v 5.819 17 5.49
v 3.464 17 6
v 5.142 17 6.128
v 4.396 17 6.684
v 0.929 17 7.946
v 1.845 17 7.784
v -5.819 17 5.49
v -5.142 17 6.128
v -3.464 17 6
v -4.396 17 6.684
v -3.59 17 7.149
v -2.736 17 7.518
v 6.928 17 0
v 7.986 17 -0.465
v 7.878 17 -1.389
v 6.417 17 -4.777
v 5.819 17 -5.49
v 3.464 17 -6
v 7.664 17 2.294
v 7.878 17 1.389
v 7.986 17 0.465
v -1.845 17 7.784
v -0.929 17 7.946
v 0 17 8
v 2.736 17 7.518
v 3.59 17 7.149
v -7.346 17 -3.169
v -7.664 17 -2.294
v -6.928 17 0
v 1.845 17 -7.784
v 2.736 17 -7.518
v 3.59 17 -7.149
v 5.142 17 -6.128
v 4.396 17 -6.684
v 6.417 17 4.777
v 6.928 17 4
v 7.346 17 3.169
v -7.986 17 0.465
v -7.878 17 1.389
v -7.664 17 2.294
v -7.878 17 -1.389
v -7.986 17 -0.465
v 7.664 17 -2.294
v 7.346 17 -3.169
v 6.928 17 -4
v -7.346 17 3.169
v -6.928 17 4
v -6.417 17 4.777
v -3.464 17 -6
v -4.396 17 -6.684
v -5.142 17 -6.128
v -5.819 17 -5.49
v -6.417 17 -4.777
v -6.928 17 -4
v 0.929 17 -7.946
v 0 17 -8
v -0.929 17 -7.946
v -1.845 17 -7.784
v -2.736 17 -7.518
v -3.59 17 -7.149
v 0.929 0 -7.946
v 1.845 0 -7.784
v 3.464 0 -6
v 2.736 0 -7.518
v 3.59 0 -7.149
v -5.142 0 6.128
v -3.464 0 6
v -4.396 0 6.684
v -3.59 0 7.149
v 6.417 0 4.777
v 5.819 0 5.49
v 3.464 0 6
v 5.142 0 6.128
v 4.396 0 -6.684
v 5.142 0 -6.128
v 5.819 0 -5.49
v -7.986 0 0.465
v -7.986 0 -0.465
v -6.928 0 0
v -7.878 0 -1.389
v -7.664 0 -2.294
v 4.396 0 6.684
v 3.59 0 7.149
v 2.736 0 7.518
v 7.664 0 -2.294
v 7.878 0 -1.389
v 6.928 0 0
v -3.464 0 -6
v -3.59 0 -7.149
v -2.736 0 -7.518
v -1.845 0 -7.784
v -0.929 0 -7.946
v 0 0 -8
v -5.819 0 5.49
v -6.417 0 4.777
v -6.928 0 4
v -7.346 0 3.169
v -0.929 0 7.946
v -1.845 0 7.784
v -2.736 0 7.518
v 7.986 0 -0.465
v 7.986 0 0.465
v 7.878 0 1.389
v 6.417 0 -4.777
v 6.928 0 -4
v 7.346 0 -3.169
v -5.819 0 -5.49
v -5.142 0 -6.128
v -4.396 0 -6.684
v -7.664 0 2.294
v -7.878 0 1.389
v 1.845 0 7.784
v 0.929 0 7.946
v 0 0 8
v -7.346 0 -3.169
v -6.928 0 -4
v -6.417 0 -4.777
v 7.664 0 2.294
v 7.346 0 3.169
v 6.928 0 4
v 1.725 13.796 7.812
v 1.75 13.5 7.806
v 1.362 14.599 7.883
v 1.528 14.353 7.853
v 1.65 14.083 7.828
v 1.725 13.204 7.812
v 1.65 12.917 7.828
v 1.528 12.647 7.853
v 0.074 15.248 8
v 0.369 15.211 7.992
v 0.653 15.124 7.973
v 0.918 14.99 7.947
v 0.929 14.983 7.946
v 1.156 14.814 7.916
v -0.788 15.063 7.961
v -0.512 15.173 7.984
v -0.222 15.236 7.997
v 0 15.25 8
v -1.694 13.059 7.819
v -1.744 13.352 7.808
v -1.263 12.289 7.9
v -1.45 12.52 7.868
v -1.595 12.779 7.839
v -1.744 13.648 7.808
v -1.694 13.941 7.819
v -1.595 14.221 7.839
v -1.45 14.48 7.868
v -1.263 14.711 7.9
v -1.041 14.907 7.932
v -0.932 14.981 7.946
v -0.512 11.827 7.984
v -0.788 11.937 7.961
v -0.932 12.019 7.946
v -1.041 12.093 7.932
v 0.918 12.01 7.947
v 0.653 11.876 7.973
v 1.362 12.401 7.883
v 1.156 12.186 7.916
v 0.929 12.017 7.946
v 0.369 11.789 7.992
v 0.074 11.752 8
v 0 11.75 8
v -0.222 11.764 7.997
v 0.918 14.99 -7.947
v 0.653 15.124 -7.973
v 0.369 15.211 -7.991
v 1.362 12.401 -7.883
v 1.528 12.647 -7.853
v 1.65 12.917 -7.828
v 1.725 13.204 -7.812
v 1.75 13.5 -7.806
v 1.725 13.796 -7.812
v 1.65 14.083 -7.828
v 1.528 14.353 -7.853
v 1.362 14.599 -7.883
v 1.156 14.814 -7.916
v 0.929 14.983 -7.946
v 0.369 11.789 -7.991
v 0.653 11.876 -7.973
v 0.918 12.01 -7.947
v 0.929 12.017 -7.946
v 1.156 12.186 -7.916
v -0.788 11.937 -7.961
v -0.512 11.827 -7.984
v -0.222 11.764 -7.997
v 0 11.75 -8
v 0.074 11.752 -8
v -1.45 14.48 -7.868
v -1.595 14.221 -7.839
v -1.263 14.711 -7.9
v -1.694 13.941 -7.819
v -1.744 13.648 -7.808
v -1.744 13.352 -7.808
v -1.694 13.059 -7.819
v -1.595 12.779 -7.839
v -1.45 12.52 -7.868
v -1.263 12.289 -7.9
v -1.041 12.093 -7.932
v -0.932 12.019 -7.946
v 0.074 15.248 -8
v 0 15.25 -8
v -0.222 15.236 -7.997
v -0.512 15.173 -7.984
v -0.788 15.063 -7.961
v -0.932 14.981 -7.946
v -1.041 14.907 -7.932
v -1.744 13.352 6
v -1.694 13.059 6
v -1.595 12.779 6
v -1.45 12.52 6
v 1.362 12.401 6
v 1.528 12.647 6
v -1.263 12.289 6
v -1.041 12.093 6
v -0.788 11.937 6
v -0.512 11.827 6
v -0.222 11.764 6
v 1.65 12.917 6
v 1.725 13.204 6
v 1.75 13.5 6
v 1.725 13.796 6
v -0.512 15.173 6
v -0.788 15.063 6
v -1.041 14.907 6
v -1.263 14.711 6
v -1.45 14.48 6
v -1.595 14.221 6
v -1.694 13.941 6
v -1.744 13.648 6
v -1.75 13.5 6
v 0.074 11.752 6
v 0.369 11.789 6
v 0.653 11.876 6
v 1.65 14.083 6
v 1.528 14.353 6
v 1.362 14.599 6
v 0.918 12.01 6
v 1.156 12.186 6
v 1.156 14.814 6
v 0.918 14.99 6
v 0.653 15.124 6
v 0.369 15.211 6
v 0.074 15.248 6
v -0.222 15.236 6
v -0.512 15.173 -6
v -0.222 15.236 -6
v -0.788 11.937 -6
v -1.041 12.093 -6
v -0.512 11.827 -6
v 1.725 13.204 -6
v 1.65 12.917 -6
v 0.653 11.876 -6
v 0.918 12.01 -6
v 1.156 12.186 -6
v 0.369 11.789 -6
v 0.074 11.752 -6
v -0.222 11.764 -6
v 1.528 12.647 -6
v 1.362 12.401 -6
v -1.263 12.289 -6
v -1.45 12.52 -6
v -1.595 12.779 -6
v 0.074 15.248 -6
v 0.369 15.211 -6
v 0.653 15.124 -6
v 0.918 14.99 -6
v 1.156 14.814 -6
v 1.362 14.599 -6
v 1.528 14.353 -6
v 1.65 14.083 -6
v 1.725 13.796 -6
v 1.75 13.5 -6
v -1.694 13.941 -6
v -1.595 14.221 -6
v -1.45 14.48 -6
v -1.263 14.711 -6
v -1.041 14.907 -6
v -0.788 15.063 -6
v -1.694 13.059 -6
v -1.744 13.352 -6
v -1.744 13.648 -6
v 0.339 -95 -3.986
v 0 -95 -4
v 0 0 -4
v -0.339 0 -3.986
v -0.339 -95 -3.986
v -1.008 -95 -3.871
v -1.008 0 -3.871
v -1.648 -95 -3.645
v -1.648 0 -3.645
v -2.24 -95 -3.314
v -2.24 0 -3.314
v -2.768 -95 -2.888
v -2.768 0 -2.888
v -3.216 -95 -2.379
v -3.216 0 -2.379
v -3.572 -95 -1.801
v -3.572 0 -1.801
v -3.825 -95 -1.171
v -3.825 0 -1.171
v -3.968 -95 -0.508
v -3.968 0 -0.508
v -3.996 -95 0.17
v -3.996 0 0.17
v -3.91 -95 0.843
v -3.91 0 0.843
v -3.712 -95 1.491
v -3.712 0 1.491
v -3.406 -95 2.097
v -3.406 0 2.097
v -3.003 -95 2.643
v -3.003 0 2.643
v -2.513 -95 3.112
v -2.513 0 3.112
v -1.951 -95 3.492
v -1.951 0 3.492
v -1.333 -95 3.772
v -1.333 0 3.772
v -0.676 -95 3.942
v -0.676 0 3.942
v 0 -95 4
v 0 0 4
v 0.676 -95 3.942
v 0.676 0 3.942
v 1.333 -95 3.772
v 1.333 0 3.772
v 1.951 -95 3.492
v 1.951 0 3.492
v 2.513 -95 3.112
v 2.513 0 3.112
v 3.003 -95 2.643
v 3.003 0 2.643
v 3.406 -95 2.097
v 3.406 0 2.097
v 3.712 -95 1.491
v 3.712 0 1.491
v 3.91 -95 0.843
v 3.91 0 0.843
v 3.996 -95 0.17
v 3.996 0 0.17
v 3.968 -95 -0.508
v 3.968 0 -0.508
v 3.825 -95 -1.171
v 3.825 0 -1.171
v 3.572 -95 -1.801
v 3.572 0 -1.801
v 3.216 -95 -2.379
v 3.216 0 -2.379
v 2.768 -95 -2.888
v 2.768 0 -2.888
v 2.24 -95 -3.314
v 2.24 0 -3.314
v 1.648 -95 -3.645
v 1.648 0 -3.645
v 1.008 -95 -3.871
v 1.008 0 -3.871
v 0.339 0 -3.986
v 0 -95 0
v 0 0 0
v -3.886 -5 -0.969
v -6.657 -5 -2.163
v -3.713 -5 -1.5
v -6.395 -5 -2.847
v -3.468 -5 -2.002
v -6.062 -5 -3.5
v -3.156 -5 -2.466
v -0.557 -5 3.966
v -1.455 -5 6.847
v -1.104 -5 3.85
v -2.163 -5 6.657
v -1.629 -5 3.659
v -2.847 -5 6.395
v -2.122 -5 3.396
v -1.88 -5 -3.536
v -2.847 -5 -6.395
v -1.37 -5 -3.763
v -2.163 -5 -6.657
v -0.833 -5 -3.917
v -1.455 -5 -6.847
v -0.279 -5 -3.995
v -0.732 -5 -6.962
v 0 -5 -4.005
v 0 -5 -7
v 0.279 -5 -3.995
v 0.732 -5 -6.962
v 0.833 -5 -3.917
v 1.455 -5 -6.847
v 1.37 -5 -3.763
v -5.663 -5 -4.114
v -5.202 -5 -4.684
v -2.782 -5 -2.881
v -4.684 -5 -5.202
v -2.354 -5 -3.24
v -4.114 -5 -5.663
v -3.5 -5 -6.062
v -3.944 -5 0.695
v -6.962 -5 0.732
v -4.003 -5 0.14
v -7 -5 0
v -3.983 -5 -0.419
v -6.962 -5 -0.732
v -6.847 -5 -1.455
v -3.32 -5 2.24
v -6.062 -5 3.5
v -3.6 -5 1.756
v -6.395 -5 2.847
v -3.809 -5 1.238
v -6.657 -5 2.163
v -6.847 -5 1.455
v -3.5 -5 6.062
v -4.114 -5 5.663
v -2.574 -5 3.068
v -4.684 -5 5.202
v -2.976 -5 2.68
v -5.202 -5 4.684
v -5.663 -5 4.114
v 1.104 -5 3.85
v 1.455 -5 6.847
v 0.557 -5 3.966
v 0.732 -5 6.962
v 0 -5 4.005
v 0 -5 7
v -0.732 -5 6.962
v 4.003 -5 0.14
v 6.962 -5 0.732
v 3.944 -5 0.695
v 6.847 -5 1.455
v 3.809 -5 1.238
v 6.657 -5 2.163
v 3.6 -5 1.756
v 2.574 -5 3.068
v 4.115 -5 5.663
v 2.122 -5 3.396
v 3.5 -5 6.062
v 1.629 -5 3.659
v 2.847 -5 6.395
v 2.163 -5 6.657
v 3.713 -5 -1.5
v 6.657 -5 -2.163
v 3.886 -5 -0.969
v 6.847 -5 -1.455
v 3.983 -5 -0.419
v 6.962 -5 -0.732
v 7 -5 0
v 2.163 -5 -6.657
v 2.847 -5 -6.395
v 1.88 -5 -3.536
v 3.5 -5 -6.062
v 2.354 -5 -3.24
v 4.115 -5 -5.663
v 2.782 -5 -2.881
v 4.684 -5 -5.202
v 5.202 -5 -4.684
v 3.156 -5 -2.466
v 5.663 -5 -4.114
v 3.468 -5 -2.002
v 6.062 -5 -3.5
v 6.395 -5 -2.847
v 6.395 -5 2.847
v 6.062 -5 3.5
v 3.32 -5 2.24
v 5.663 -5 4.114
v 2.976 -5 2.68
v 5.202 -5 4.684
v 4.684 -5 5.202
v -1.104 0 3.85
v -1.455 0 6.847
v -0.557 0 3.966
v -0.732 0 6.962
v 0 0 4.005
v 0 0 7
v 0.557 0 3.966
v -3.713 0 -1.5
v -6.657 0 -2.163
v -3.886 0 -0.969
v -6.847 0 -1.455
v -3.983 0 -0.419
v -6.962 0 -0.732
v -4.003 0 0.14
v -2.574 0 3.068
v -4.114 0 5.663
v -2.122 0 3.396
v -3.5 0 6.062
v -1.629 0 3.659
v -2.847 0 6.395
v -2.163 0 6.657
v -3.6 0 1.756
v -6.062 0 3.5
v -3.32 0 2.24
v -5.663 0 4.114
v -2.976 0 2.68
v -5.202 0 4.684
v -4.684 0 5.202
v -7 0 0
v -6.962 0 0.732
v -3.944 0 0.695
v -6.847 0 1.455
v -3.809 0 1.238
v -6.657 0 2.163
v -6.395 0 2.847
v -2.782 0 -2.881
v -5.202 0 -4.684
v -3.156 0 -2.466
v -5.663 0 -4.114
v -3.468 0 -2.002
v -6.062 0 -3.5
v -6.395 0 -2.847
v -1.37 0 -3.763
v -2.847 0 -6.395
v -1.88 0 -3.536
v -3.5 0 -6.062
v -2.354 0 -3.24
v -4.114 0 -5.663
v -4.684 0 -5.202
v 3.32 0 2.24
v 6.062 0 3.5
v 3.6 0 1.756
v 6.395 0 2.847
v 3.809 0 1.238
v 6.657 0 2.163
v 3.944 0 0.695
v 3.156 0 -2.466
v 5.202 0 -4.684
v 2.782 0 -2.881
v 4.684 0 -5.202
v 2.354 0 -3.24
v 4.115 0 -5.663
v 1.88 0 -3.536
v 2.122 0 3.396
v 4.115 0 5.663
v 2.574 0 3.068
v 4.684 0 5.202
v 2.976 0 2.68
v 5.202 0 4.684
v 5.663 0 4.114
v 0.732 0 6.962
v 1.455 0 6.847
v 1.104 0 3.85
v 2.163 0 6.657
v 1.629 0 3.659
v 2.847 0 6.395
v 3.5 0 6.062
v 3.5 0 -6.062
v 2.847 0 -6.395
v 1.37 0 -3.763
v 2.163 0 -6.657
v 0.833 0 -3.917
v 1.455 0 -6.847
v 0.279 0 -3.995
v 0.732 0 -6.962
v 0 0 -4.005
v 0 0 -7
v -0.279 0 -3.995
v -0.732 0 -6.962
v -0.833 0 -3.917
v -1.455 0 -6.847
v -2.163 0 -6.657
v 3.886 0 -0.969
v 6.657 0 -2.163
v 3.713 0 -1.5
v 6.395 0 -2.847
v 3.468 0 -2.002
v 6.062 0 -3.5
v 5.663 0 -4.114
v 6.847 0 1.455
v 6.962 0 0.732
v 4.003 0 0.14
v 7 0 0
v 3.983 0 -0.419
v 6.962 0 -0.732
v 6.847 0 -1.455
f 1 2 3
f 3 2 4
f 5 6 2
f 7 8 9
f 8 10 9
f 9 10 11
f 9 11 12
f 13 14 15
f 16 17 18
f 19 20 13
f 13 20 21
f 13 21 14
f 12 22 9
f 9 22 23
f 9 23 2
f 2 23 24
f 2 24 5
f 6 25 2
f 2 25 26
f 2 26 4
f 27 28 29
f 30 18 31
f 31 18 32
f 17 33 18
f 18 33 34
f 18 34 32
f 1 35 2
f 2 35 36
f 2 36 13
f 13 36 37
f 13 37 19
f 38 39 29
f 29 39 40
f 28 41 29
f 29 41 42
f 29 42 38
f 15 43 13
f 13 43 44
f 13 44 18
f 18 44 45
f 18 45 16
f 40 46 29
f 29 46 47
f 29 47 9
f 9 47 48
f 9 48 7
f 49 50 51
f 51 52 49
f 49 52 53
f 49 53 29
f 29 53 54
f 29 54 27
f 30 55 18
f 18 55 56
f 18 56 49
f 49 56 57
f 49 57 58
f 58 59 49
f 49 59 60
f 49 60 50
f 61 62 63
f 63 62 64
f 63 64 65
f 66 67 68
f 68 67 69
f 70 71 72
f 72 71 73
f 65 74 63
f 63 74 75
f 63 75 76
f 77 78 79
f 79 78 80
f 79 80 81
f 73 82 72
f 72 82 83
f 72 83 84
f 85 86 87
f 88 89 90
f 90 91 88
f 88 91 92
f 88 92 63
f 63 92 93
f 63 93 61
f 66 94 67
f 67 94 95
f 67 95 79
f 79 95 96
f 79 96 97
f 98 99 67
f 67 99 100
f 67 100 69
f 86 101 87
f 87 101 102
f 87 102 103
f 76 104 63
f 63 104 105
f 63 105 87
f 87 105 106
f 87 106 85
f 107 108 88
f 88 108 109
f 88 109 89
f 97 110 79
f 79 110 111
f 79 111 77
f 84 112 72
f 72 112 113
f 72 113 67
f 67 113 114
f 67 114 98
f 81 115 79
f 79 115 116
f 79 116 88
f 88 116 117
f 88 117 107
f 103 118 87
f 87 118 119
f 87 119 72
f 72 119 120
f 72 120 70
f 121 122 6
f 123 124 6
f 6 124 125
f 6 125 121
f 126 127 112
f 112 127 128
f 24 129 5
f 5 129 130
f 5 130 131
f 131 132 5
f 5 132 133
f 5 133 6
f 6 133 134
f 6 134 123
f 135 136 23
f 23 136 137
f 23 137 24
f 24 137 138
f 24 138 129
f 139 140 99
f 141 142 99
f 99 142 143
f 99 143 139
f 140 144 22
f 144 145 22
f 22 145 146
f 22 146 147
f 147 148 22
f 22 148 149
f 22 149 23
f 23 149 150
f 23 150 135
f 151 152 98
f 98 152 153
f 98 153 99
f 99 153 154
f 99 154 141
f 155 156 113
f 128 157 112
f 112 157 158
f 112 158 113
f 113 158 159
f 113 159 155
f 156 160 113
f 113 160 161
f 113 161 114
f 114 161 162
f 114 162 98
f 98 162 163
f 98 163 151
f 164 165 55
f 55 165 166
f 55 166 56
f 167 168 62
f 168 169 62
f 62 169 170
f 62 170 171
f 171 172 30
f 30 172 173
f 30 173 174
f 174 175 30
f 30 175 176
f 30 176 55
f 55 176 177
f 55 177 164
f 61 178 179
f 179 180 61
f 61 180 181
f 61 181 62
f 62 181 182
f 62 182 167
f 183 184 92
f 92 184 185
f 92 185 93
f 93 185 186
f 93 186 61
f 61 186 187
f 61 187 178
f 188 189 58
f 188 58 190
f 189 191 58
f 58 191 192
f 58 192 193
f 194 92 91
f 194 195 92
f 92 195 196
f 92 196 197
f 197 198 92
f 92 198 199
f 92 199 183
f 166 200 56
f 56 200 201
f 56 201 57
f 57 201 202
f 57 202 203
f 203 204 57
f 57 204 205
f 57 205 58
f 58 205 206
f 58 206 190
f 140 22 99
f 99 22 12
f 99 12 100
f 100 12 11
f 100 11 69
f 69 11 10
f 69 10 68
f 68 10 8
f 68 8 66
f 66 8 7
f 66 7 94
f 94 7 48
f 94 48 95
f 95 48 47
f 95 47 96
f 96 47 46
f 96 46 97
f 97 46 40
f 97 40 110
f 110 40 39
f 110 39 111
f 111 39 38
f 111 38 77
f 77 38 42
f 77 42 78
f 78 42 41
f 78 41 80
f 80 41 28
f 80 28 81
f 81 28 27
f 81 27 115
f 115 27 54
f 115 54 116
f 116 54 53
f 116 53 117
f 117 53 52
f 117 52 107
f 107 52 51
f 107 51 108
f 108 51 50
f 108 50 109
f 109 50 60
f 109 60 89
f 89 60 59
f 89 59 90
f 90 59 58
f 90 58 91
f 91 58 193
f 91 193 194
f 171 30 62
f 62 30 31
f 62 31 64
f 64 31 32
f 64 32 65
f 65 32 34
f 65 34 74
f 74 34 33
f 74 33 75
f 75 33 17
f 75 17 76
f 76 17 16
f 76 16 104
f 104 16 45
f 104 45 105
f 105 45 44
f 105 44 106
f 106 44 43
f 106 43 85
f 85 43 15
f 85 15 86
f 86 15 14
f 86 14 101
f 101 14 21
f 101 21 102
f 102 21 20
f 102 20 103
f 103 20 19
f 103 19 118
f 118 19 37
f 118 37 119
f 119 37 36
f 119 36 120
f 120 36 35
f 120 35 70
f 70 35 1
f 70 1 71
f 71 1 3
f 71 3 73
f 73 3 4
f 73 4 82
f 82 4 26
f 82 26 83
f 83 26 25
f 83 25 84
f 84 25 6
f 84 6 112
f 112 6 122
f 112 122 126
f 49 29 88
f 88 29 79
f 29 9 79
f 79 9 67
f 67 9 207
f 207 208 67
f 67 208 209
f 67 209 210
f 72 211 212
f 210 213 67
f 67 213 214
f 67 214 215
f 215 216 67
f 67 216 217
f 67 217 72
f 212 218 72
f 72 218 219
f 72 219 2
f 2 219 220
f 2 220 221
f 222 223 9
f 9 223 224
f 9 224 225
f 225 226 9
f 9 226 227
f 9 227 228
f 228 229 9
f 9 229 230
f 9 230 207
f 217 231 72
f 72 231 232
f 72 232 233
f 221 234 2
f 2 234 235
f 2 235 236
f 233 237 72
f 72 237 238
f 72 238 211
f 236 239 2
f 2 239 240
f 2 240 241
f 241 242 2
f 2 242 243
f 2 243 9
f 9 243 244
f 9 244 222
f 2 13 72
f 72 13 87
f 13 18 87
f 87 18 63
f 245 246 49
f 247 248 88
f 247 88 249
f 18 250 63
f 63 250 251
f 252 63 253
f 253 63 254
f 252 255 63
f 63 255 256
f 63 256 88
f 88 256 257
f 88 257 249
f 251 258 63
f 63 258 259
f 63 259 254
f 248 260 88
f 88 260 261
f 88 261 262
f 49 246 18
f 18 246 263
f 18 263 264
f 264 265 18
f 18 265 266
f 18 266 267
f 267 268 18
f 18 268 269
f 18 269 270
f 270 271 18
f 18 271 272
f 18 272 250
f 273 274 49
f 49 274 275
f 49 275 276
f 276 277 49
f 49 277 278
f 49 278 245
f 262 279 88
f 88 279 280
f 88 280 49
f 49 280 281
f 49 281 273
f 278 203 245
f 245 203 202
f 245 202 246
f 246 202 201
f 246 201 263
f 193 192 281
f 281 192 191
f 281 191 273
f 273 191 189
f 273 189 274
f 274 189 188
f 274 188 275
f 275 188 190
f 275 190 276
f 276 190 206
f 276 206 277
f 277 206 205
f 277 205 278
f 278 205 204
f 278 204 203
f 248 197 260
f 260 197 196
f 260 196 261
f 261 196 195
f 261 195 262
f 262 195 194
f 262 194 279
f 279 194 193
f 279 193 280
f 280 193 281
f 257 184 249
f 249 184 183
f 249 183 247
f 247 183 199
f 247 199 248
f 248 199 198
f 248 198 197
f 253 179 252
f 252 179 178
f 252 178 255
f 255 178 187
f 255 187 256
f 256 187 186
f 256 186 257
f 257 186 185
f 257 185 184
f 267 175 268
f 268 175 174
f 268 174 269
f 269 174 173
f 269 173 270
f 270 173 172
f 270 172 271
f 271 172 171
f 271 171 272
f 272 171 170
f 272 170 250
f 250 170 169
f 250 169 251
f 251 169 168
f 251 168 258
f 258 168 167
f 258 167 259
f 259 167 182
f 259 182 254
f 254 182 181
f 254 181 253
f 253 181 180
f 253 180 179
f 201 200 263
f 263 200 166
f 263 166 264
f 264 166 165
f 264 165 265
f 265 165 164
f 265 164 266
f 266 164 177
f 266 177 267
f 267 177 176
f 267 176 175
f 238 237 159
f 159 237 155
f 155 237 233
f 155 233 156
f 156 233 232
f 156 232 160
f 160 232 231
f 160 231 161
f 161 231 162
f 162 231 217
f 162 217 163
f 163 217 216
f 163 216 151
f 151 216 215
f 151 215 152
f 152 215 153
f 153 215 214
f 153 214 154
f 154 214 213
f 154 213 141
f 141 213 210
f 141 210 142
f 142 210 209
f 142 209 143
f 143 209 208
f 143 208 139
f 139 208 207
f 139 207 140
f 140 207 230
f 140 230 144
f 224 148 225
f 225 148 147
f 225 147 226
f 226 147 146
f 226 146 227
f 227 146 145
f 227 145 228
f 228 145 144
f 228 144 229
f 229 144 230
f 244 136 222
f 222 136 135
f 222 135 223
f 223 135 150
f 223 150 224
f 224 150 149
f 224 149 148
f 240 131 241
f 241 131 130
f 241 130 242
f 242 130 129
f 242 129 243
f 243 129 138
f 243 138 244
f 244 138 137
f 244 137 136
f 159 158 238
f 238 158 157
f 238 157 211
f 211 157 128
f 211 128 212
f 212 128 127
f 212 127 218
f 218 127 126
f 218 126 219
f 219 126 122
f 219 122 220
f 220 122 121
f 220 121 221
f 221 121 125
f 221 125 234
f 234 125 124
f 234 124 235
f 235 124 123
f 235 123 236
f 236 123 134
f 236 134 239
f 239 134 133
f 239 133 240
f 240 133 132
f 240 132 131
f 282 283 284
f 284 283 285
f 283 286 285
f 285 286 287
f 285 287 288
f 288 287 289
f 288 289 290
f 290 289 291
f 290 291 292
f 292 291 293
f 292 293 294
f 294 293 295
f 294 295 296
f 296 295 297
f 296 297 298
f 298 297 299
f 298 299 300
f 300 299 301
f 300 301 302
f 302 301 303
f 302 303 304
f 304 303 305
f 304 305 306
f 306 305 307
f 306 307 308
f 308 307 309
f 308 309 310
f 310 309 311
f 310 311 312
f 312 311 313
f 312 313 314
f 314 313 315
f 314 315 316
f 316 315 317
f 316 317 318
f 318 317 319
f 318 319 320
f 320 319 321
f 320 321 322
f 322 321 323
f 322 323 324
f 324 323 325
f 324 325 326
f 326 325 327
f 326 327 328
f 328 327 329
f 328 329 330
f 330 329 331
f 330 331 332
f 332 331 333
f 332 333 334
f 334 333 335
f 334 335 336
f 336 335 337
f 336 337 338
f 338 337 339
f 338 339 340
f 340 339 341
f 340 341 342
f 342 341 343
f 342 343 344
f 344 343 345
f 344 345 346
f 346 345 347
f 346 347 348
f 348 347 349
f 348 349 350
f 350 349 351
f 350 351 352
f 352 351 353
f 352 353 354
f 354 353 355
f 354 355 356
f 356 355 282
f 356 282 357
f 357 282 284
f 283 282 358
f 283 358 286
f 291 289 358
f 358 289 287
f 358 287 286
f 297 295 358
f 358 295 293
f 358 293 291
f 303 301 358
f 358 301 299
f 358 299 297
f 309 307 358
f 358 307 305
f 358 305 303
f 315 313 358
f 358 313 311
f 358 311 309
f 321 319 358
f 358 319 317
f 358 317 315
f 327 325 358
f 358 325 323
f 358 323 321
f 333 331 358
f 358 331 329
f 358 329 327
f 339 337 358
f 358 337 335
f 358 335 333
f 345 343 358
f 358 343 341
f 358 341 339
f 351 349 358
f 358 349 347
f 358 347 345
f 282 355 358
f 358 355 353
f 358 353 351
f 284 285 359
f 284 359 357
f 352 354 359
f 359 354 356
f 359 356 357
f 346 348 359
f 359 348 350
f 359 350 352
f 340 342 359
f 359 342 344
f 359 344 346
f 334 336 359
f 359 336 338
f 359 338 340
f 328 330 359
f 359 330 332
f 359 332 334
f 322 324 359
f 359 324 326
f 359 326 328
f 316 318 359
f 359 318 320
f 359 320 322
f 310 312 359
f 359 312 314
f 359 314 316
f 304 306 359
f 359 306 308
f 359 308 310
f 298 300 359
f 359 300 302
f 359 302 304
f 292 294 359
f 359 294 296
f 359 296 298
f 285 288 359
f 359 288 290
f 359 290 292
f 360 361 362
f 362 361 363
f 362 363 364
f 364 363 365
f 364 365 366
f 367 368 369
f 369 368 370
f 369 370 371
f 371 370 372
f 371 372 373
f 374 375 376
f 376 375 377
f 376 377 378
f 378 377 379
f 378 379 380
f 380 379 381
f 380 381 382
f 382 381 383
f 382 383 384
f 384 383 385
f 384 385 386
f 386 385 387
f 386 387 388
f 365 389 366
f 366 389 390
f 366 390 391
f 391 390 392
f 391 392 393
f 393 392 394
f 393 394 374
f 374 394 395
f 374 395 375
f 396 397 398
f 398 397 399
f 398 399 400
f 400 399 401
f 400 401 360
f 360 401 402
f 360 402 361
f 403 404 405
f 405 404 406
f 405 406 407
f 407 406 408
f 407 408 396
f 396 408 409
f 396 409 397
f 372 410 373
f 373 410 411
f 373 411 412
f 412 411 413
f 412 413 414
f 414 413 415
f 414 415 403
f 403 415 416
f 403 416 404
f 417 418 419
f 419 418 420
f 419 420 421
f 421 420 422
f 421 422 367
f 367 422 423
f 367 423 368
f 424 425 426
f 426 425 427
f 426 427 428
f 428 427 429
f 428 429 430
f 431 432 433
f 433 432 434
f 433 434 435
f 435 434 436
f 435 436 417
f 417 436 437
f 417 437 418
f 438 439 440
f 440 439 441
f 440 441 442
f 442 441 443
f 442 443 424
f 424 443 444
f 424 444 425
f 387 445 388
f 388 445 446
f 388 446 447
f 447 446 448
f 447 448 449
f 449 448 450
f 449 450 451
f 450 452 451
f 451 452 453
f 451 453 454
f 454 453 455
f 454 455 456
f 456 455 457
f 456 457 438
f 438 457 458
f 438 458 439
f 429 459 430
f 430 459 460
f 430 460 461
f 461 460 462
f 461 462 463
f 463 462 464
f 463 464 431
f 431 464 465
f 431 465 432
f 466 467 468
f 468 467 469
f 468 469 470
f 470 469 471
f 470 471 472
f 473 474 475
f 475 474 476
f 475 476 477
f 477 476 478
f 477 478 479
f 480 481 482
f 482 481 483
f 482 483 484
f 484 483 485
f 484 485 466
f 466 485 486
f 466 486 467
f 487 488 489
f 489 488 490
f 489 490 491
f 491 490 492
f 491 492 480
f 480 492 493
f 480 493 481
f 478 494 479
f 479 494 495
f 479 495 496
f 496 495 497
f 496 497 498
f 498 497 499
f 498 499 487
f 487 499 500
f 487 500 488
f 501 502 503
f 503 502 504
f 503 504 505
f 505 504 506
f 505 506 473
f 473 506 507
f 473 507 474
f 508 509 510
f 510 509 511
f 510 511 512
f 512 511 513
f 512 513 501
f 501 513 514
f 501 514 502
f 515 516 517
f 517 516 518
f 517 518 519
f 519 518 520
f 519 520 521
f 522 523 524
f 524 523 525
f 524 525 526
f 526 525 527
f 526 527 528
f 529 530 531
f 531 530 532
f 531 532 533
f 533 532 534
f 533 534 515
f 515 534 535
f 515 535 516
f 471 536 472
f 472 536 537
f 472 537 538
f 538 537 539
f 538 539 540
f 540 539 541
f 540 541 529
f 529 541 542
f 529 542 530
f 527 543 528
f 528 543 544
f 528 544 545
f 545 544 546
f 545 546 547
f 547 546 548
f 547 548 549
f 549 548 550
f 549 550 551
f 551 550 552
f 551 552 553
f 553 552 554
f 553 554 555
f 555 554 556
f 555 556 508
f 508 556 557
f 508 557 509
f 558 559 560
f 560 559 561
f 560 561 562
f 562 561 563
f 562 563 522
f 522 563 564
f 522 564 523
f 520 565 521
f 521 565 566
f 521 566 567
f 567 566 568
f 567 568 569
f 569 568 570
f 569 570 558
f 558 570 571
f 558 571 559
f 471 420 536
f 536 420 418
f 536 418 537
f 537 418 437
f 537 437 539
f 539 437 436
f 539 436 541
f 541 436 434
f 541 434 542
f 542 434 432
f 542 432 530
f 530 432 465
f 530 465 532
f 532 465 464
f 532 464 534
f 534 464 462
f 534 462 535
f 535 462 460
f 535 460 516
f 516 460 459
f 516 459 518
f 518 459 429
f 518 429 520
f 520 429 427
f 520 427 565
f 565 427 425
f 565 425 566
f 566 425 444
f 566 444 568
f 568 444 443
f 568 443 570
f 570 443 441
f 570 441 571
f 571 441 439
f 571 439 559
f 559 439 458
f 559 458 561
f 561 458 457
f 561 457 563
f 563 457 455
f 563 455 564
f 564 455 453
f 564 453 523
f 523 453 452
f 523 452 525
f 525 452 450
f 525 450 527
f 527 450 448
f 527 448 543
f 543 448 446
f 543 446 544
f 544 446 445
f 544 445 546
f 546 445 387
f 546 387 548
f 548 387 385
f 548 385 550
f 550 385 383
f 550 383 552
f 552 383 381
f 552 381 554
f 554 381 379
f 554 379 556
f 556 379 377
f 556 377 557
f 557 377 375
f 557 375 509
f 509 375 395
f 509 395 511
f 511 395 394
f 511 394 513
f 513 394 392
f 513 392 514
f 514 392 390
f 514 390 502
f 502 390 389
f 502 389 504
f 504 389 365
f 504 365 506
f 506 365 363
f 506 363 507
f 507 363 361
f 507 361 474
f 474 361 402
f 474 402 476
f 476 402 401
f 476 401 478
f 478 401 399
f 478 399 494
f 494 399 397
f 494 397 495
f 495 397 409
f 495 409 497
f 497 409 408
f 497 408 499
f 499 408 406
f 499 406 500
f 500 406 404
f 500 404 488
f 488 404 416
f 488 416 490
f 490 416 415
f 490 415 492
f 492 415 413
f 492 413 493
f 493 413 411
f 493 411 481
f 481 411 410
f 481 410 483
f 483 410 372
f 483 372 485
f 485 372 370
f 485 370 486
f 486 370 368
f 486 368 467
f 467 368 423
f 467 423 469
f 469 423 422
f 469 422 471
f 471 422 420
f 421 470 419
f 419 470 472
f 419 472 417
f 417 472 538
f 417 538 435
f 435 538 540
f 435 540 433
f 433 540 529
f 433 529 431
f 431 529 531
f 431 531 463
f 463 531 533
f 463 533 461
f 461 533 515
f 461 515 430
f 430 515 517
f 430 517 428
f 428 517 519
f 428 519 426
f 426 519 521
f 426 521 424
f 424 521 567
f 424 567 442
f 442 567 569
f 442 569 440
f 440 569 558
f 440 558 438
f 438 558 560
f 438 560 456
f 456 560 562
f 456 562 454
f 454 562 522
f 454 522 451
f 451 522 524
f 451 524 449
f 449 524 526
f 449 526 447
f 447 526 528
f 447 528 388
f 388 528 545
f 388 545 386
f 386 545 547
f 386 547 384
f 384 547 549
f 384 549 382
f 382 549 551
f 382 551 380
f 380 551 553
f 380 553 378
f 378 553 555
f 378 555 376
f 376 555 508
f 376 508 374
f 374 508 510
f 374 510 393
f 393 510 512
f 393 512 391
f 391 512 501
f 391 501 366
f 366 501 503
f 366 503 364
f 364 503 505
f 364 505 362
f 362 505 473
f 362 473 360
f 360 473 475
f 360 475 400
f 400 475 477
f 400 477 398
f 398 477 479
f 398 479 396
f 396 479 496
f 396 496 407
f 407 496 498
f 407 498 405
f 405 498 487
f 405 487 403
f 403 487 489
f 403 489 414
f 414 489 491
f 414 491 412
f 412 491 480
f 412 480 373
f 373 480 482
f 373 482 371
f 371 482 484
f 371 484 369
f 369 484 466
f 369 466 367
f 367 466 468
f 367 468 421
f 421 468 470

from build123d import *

# Parameters (mm, degrees)
SKETCH1_R               = 8
BOSS_EXTRUDE1_DEPTH     = 17
CUT_EXTRUDE2_DEPTH      = 24.430749028
CUT_EXTRUDE2_DEPTH_BACK = 24.430749028
SKETCH2_R               = 1.75
SKETCH3_R               = 4
BOSS_EXTRUDE2_DEPTH     = 95
SKETCH5_R               = 7
SKETCH5_R_2             = 4.005
BOSS_EXTRUDE8_DEPTH     = 5


with BuildPart() as part:
    # Sketch1 → Boss-Extrude1 (new body)
    with BuildSketch(Plane(origin=(0, 0, 0), x_dir=(-1, 0, 0), z_dir=(0, 1, 0))):
        Circle(SKETCH1_R)
        Polygon((6.92820323, 0), (3.464101615, 6), (-3.464101615, 6), (-6.92820323, 0), (-3.464101615, -6), (3.464101615, -6), align=None, mode=Mode.SUBTRACT)
    extrude(amount=BOSS_EXTRUDE1_DEPTH)

    # Sketch2 → Cut-Extrude2 (cut, two sides: drawn at the far end of the back side and taken through both)
    with BuildSketch(Plane.XY.offset(-6).offset(-CUT_EXTRUDE2_DEPTH_BACK)):
        with Locations((0, 13.5)):
            Circle(SKETCH2_R)
    extrude(amount=CUT_EXTRUDE2_DEPTH + CUT_EXTRUDE2_DEPTH_BACK, mode=Mode.SUBTRACT)


with BuildPart() as body_2:
    # Sketch3 → Boss-Extrude2 (new body)
    with BuildSketch(Plane.XZ):
        Circle(SKETCH3_R)
    extrude(amount=BOSS_EXTRUDE2_DEPTH)


with BuildPart() as body_3:
    # Sketch5 → Boss-Extrude8 (new body)
    with BuildSketch(Plane.XZ):
        Circle(SKETCH5_R)
        Circle(SKETCH5_R_2, mode=Mode.SUBTRACT)
    extrude(amount=BOSS_EXTRUDE8_DEPTH)


solid = Compound([part.part, body_2.part, body_3.part])
